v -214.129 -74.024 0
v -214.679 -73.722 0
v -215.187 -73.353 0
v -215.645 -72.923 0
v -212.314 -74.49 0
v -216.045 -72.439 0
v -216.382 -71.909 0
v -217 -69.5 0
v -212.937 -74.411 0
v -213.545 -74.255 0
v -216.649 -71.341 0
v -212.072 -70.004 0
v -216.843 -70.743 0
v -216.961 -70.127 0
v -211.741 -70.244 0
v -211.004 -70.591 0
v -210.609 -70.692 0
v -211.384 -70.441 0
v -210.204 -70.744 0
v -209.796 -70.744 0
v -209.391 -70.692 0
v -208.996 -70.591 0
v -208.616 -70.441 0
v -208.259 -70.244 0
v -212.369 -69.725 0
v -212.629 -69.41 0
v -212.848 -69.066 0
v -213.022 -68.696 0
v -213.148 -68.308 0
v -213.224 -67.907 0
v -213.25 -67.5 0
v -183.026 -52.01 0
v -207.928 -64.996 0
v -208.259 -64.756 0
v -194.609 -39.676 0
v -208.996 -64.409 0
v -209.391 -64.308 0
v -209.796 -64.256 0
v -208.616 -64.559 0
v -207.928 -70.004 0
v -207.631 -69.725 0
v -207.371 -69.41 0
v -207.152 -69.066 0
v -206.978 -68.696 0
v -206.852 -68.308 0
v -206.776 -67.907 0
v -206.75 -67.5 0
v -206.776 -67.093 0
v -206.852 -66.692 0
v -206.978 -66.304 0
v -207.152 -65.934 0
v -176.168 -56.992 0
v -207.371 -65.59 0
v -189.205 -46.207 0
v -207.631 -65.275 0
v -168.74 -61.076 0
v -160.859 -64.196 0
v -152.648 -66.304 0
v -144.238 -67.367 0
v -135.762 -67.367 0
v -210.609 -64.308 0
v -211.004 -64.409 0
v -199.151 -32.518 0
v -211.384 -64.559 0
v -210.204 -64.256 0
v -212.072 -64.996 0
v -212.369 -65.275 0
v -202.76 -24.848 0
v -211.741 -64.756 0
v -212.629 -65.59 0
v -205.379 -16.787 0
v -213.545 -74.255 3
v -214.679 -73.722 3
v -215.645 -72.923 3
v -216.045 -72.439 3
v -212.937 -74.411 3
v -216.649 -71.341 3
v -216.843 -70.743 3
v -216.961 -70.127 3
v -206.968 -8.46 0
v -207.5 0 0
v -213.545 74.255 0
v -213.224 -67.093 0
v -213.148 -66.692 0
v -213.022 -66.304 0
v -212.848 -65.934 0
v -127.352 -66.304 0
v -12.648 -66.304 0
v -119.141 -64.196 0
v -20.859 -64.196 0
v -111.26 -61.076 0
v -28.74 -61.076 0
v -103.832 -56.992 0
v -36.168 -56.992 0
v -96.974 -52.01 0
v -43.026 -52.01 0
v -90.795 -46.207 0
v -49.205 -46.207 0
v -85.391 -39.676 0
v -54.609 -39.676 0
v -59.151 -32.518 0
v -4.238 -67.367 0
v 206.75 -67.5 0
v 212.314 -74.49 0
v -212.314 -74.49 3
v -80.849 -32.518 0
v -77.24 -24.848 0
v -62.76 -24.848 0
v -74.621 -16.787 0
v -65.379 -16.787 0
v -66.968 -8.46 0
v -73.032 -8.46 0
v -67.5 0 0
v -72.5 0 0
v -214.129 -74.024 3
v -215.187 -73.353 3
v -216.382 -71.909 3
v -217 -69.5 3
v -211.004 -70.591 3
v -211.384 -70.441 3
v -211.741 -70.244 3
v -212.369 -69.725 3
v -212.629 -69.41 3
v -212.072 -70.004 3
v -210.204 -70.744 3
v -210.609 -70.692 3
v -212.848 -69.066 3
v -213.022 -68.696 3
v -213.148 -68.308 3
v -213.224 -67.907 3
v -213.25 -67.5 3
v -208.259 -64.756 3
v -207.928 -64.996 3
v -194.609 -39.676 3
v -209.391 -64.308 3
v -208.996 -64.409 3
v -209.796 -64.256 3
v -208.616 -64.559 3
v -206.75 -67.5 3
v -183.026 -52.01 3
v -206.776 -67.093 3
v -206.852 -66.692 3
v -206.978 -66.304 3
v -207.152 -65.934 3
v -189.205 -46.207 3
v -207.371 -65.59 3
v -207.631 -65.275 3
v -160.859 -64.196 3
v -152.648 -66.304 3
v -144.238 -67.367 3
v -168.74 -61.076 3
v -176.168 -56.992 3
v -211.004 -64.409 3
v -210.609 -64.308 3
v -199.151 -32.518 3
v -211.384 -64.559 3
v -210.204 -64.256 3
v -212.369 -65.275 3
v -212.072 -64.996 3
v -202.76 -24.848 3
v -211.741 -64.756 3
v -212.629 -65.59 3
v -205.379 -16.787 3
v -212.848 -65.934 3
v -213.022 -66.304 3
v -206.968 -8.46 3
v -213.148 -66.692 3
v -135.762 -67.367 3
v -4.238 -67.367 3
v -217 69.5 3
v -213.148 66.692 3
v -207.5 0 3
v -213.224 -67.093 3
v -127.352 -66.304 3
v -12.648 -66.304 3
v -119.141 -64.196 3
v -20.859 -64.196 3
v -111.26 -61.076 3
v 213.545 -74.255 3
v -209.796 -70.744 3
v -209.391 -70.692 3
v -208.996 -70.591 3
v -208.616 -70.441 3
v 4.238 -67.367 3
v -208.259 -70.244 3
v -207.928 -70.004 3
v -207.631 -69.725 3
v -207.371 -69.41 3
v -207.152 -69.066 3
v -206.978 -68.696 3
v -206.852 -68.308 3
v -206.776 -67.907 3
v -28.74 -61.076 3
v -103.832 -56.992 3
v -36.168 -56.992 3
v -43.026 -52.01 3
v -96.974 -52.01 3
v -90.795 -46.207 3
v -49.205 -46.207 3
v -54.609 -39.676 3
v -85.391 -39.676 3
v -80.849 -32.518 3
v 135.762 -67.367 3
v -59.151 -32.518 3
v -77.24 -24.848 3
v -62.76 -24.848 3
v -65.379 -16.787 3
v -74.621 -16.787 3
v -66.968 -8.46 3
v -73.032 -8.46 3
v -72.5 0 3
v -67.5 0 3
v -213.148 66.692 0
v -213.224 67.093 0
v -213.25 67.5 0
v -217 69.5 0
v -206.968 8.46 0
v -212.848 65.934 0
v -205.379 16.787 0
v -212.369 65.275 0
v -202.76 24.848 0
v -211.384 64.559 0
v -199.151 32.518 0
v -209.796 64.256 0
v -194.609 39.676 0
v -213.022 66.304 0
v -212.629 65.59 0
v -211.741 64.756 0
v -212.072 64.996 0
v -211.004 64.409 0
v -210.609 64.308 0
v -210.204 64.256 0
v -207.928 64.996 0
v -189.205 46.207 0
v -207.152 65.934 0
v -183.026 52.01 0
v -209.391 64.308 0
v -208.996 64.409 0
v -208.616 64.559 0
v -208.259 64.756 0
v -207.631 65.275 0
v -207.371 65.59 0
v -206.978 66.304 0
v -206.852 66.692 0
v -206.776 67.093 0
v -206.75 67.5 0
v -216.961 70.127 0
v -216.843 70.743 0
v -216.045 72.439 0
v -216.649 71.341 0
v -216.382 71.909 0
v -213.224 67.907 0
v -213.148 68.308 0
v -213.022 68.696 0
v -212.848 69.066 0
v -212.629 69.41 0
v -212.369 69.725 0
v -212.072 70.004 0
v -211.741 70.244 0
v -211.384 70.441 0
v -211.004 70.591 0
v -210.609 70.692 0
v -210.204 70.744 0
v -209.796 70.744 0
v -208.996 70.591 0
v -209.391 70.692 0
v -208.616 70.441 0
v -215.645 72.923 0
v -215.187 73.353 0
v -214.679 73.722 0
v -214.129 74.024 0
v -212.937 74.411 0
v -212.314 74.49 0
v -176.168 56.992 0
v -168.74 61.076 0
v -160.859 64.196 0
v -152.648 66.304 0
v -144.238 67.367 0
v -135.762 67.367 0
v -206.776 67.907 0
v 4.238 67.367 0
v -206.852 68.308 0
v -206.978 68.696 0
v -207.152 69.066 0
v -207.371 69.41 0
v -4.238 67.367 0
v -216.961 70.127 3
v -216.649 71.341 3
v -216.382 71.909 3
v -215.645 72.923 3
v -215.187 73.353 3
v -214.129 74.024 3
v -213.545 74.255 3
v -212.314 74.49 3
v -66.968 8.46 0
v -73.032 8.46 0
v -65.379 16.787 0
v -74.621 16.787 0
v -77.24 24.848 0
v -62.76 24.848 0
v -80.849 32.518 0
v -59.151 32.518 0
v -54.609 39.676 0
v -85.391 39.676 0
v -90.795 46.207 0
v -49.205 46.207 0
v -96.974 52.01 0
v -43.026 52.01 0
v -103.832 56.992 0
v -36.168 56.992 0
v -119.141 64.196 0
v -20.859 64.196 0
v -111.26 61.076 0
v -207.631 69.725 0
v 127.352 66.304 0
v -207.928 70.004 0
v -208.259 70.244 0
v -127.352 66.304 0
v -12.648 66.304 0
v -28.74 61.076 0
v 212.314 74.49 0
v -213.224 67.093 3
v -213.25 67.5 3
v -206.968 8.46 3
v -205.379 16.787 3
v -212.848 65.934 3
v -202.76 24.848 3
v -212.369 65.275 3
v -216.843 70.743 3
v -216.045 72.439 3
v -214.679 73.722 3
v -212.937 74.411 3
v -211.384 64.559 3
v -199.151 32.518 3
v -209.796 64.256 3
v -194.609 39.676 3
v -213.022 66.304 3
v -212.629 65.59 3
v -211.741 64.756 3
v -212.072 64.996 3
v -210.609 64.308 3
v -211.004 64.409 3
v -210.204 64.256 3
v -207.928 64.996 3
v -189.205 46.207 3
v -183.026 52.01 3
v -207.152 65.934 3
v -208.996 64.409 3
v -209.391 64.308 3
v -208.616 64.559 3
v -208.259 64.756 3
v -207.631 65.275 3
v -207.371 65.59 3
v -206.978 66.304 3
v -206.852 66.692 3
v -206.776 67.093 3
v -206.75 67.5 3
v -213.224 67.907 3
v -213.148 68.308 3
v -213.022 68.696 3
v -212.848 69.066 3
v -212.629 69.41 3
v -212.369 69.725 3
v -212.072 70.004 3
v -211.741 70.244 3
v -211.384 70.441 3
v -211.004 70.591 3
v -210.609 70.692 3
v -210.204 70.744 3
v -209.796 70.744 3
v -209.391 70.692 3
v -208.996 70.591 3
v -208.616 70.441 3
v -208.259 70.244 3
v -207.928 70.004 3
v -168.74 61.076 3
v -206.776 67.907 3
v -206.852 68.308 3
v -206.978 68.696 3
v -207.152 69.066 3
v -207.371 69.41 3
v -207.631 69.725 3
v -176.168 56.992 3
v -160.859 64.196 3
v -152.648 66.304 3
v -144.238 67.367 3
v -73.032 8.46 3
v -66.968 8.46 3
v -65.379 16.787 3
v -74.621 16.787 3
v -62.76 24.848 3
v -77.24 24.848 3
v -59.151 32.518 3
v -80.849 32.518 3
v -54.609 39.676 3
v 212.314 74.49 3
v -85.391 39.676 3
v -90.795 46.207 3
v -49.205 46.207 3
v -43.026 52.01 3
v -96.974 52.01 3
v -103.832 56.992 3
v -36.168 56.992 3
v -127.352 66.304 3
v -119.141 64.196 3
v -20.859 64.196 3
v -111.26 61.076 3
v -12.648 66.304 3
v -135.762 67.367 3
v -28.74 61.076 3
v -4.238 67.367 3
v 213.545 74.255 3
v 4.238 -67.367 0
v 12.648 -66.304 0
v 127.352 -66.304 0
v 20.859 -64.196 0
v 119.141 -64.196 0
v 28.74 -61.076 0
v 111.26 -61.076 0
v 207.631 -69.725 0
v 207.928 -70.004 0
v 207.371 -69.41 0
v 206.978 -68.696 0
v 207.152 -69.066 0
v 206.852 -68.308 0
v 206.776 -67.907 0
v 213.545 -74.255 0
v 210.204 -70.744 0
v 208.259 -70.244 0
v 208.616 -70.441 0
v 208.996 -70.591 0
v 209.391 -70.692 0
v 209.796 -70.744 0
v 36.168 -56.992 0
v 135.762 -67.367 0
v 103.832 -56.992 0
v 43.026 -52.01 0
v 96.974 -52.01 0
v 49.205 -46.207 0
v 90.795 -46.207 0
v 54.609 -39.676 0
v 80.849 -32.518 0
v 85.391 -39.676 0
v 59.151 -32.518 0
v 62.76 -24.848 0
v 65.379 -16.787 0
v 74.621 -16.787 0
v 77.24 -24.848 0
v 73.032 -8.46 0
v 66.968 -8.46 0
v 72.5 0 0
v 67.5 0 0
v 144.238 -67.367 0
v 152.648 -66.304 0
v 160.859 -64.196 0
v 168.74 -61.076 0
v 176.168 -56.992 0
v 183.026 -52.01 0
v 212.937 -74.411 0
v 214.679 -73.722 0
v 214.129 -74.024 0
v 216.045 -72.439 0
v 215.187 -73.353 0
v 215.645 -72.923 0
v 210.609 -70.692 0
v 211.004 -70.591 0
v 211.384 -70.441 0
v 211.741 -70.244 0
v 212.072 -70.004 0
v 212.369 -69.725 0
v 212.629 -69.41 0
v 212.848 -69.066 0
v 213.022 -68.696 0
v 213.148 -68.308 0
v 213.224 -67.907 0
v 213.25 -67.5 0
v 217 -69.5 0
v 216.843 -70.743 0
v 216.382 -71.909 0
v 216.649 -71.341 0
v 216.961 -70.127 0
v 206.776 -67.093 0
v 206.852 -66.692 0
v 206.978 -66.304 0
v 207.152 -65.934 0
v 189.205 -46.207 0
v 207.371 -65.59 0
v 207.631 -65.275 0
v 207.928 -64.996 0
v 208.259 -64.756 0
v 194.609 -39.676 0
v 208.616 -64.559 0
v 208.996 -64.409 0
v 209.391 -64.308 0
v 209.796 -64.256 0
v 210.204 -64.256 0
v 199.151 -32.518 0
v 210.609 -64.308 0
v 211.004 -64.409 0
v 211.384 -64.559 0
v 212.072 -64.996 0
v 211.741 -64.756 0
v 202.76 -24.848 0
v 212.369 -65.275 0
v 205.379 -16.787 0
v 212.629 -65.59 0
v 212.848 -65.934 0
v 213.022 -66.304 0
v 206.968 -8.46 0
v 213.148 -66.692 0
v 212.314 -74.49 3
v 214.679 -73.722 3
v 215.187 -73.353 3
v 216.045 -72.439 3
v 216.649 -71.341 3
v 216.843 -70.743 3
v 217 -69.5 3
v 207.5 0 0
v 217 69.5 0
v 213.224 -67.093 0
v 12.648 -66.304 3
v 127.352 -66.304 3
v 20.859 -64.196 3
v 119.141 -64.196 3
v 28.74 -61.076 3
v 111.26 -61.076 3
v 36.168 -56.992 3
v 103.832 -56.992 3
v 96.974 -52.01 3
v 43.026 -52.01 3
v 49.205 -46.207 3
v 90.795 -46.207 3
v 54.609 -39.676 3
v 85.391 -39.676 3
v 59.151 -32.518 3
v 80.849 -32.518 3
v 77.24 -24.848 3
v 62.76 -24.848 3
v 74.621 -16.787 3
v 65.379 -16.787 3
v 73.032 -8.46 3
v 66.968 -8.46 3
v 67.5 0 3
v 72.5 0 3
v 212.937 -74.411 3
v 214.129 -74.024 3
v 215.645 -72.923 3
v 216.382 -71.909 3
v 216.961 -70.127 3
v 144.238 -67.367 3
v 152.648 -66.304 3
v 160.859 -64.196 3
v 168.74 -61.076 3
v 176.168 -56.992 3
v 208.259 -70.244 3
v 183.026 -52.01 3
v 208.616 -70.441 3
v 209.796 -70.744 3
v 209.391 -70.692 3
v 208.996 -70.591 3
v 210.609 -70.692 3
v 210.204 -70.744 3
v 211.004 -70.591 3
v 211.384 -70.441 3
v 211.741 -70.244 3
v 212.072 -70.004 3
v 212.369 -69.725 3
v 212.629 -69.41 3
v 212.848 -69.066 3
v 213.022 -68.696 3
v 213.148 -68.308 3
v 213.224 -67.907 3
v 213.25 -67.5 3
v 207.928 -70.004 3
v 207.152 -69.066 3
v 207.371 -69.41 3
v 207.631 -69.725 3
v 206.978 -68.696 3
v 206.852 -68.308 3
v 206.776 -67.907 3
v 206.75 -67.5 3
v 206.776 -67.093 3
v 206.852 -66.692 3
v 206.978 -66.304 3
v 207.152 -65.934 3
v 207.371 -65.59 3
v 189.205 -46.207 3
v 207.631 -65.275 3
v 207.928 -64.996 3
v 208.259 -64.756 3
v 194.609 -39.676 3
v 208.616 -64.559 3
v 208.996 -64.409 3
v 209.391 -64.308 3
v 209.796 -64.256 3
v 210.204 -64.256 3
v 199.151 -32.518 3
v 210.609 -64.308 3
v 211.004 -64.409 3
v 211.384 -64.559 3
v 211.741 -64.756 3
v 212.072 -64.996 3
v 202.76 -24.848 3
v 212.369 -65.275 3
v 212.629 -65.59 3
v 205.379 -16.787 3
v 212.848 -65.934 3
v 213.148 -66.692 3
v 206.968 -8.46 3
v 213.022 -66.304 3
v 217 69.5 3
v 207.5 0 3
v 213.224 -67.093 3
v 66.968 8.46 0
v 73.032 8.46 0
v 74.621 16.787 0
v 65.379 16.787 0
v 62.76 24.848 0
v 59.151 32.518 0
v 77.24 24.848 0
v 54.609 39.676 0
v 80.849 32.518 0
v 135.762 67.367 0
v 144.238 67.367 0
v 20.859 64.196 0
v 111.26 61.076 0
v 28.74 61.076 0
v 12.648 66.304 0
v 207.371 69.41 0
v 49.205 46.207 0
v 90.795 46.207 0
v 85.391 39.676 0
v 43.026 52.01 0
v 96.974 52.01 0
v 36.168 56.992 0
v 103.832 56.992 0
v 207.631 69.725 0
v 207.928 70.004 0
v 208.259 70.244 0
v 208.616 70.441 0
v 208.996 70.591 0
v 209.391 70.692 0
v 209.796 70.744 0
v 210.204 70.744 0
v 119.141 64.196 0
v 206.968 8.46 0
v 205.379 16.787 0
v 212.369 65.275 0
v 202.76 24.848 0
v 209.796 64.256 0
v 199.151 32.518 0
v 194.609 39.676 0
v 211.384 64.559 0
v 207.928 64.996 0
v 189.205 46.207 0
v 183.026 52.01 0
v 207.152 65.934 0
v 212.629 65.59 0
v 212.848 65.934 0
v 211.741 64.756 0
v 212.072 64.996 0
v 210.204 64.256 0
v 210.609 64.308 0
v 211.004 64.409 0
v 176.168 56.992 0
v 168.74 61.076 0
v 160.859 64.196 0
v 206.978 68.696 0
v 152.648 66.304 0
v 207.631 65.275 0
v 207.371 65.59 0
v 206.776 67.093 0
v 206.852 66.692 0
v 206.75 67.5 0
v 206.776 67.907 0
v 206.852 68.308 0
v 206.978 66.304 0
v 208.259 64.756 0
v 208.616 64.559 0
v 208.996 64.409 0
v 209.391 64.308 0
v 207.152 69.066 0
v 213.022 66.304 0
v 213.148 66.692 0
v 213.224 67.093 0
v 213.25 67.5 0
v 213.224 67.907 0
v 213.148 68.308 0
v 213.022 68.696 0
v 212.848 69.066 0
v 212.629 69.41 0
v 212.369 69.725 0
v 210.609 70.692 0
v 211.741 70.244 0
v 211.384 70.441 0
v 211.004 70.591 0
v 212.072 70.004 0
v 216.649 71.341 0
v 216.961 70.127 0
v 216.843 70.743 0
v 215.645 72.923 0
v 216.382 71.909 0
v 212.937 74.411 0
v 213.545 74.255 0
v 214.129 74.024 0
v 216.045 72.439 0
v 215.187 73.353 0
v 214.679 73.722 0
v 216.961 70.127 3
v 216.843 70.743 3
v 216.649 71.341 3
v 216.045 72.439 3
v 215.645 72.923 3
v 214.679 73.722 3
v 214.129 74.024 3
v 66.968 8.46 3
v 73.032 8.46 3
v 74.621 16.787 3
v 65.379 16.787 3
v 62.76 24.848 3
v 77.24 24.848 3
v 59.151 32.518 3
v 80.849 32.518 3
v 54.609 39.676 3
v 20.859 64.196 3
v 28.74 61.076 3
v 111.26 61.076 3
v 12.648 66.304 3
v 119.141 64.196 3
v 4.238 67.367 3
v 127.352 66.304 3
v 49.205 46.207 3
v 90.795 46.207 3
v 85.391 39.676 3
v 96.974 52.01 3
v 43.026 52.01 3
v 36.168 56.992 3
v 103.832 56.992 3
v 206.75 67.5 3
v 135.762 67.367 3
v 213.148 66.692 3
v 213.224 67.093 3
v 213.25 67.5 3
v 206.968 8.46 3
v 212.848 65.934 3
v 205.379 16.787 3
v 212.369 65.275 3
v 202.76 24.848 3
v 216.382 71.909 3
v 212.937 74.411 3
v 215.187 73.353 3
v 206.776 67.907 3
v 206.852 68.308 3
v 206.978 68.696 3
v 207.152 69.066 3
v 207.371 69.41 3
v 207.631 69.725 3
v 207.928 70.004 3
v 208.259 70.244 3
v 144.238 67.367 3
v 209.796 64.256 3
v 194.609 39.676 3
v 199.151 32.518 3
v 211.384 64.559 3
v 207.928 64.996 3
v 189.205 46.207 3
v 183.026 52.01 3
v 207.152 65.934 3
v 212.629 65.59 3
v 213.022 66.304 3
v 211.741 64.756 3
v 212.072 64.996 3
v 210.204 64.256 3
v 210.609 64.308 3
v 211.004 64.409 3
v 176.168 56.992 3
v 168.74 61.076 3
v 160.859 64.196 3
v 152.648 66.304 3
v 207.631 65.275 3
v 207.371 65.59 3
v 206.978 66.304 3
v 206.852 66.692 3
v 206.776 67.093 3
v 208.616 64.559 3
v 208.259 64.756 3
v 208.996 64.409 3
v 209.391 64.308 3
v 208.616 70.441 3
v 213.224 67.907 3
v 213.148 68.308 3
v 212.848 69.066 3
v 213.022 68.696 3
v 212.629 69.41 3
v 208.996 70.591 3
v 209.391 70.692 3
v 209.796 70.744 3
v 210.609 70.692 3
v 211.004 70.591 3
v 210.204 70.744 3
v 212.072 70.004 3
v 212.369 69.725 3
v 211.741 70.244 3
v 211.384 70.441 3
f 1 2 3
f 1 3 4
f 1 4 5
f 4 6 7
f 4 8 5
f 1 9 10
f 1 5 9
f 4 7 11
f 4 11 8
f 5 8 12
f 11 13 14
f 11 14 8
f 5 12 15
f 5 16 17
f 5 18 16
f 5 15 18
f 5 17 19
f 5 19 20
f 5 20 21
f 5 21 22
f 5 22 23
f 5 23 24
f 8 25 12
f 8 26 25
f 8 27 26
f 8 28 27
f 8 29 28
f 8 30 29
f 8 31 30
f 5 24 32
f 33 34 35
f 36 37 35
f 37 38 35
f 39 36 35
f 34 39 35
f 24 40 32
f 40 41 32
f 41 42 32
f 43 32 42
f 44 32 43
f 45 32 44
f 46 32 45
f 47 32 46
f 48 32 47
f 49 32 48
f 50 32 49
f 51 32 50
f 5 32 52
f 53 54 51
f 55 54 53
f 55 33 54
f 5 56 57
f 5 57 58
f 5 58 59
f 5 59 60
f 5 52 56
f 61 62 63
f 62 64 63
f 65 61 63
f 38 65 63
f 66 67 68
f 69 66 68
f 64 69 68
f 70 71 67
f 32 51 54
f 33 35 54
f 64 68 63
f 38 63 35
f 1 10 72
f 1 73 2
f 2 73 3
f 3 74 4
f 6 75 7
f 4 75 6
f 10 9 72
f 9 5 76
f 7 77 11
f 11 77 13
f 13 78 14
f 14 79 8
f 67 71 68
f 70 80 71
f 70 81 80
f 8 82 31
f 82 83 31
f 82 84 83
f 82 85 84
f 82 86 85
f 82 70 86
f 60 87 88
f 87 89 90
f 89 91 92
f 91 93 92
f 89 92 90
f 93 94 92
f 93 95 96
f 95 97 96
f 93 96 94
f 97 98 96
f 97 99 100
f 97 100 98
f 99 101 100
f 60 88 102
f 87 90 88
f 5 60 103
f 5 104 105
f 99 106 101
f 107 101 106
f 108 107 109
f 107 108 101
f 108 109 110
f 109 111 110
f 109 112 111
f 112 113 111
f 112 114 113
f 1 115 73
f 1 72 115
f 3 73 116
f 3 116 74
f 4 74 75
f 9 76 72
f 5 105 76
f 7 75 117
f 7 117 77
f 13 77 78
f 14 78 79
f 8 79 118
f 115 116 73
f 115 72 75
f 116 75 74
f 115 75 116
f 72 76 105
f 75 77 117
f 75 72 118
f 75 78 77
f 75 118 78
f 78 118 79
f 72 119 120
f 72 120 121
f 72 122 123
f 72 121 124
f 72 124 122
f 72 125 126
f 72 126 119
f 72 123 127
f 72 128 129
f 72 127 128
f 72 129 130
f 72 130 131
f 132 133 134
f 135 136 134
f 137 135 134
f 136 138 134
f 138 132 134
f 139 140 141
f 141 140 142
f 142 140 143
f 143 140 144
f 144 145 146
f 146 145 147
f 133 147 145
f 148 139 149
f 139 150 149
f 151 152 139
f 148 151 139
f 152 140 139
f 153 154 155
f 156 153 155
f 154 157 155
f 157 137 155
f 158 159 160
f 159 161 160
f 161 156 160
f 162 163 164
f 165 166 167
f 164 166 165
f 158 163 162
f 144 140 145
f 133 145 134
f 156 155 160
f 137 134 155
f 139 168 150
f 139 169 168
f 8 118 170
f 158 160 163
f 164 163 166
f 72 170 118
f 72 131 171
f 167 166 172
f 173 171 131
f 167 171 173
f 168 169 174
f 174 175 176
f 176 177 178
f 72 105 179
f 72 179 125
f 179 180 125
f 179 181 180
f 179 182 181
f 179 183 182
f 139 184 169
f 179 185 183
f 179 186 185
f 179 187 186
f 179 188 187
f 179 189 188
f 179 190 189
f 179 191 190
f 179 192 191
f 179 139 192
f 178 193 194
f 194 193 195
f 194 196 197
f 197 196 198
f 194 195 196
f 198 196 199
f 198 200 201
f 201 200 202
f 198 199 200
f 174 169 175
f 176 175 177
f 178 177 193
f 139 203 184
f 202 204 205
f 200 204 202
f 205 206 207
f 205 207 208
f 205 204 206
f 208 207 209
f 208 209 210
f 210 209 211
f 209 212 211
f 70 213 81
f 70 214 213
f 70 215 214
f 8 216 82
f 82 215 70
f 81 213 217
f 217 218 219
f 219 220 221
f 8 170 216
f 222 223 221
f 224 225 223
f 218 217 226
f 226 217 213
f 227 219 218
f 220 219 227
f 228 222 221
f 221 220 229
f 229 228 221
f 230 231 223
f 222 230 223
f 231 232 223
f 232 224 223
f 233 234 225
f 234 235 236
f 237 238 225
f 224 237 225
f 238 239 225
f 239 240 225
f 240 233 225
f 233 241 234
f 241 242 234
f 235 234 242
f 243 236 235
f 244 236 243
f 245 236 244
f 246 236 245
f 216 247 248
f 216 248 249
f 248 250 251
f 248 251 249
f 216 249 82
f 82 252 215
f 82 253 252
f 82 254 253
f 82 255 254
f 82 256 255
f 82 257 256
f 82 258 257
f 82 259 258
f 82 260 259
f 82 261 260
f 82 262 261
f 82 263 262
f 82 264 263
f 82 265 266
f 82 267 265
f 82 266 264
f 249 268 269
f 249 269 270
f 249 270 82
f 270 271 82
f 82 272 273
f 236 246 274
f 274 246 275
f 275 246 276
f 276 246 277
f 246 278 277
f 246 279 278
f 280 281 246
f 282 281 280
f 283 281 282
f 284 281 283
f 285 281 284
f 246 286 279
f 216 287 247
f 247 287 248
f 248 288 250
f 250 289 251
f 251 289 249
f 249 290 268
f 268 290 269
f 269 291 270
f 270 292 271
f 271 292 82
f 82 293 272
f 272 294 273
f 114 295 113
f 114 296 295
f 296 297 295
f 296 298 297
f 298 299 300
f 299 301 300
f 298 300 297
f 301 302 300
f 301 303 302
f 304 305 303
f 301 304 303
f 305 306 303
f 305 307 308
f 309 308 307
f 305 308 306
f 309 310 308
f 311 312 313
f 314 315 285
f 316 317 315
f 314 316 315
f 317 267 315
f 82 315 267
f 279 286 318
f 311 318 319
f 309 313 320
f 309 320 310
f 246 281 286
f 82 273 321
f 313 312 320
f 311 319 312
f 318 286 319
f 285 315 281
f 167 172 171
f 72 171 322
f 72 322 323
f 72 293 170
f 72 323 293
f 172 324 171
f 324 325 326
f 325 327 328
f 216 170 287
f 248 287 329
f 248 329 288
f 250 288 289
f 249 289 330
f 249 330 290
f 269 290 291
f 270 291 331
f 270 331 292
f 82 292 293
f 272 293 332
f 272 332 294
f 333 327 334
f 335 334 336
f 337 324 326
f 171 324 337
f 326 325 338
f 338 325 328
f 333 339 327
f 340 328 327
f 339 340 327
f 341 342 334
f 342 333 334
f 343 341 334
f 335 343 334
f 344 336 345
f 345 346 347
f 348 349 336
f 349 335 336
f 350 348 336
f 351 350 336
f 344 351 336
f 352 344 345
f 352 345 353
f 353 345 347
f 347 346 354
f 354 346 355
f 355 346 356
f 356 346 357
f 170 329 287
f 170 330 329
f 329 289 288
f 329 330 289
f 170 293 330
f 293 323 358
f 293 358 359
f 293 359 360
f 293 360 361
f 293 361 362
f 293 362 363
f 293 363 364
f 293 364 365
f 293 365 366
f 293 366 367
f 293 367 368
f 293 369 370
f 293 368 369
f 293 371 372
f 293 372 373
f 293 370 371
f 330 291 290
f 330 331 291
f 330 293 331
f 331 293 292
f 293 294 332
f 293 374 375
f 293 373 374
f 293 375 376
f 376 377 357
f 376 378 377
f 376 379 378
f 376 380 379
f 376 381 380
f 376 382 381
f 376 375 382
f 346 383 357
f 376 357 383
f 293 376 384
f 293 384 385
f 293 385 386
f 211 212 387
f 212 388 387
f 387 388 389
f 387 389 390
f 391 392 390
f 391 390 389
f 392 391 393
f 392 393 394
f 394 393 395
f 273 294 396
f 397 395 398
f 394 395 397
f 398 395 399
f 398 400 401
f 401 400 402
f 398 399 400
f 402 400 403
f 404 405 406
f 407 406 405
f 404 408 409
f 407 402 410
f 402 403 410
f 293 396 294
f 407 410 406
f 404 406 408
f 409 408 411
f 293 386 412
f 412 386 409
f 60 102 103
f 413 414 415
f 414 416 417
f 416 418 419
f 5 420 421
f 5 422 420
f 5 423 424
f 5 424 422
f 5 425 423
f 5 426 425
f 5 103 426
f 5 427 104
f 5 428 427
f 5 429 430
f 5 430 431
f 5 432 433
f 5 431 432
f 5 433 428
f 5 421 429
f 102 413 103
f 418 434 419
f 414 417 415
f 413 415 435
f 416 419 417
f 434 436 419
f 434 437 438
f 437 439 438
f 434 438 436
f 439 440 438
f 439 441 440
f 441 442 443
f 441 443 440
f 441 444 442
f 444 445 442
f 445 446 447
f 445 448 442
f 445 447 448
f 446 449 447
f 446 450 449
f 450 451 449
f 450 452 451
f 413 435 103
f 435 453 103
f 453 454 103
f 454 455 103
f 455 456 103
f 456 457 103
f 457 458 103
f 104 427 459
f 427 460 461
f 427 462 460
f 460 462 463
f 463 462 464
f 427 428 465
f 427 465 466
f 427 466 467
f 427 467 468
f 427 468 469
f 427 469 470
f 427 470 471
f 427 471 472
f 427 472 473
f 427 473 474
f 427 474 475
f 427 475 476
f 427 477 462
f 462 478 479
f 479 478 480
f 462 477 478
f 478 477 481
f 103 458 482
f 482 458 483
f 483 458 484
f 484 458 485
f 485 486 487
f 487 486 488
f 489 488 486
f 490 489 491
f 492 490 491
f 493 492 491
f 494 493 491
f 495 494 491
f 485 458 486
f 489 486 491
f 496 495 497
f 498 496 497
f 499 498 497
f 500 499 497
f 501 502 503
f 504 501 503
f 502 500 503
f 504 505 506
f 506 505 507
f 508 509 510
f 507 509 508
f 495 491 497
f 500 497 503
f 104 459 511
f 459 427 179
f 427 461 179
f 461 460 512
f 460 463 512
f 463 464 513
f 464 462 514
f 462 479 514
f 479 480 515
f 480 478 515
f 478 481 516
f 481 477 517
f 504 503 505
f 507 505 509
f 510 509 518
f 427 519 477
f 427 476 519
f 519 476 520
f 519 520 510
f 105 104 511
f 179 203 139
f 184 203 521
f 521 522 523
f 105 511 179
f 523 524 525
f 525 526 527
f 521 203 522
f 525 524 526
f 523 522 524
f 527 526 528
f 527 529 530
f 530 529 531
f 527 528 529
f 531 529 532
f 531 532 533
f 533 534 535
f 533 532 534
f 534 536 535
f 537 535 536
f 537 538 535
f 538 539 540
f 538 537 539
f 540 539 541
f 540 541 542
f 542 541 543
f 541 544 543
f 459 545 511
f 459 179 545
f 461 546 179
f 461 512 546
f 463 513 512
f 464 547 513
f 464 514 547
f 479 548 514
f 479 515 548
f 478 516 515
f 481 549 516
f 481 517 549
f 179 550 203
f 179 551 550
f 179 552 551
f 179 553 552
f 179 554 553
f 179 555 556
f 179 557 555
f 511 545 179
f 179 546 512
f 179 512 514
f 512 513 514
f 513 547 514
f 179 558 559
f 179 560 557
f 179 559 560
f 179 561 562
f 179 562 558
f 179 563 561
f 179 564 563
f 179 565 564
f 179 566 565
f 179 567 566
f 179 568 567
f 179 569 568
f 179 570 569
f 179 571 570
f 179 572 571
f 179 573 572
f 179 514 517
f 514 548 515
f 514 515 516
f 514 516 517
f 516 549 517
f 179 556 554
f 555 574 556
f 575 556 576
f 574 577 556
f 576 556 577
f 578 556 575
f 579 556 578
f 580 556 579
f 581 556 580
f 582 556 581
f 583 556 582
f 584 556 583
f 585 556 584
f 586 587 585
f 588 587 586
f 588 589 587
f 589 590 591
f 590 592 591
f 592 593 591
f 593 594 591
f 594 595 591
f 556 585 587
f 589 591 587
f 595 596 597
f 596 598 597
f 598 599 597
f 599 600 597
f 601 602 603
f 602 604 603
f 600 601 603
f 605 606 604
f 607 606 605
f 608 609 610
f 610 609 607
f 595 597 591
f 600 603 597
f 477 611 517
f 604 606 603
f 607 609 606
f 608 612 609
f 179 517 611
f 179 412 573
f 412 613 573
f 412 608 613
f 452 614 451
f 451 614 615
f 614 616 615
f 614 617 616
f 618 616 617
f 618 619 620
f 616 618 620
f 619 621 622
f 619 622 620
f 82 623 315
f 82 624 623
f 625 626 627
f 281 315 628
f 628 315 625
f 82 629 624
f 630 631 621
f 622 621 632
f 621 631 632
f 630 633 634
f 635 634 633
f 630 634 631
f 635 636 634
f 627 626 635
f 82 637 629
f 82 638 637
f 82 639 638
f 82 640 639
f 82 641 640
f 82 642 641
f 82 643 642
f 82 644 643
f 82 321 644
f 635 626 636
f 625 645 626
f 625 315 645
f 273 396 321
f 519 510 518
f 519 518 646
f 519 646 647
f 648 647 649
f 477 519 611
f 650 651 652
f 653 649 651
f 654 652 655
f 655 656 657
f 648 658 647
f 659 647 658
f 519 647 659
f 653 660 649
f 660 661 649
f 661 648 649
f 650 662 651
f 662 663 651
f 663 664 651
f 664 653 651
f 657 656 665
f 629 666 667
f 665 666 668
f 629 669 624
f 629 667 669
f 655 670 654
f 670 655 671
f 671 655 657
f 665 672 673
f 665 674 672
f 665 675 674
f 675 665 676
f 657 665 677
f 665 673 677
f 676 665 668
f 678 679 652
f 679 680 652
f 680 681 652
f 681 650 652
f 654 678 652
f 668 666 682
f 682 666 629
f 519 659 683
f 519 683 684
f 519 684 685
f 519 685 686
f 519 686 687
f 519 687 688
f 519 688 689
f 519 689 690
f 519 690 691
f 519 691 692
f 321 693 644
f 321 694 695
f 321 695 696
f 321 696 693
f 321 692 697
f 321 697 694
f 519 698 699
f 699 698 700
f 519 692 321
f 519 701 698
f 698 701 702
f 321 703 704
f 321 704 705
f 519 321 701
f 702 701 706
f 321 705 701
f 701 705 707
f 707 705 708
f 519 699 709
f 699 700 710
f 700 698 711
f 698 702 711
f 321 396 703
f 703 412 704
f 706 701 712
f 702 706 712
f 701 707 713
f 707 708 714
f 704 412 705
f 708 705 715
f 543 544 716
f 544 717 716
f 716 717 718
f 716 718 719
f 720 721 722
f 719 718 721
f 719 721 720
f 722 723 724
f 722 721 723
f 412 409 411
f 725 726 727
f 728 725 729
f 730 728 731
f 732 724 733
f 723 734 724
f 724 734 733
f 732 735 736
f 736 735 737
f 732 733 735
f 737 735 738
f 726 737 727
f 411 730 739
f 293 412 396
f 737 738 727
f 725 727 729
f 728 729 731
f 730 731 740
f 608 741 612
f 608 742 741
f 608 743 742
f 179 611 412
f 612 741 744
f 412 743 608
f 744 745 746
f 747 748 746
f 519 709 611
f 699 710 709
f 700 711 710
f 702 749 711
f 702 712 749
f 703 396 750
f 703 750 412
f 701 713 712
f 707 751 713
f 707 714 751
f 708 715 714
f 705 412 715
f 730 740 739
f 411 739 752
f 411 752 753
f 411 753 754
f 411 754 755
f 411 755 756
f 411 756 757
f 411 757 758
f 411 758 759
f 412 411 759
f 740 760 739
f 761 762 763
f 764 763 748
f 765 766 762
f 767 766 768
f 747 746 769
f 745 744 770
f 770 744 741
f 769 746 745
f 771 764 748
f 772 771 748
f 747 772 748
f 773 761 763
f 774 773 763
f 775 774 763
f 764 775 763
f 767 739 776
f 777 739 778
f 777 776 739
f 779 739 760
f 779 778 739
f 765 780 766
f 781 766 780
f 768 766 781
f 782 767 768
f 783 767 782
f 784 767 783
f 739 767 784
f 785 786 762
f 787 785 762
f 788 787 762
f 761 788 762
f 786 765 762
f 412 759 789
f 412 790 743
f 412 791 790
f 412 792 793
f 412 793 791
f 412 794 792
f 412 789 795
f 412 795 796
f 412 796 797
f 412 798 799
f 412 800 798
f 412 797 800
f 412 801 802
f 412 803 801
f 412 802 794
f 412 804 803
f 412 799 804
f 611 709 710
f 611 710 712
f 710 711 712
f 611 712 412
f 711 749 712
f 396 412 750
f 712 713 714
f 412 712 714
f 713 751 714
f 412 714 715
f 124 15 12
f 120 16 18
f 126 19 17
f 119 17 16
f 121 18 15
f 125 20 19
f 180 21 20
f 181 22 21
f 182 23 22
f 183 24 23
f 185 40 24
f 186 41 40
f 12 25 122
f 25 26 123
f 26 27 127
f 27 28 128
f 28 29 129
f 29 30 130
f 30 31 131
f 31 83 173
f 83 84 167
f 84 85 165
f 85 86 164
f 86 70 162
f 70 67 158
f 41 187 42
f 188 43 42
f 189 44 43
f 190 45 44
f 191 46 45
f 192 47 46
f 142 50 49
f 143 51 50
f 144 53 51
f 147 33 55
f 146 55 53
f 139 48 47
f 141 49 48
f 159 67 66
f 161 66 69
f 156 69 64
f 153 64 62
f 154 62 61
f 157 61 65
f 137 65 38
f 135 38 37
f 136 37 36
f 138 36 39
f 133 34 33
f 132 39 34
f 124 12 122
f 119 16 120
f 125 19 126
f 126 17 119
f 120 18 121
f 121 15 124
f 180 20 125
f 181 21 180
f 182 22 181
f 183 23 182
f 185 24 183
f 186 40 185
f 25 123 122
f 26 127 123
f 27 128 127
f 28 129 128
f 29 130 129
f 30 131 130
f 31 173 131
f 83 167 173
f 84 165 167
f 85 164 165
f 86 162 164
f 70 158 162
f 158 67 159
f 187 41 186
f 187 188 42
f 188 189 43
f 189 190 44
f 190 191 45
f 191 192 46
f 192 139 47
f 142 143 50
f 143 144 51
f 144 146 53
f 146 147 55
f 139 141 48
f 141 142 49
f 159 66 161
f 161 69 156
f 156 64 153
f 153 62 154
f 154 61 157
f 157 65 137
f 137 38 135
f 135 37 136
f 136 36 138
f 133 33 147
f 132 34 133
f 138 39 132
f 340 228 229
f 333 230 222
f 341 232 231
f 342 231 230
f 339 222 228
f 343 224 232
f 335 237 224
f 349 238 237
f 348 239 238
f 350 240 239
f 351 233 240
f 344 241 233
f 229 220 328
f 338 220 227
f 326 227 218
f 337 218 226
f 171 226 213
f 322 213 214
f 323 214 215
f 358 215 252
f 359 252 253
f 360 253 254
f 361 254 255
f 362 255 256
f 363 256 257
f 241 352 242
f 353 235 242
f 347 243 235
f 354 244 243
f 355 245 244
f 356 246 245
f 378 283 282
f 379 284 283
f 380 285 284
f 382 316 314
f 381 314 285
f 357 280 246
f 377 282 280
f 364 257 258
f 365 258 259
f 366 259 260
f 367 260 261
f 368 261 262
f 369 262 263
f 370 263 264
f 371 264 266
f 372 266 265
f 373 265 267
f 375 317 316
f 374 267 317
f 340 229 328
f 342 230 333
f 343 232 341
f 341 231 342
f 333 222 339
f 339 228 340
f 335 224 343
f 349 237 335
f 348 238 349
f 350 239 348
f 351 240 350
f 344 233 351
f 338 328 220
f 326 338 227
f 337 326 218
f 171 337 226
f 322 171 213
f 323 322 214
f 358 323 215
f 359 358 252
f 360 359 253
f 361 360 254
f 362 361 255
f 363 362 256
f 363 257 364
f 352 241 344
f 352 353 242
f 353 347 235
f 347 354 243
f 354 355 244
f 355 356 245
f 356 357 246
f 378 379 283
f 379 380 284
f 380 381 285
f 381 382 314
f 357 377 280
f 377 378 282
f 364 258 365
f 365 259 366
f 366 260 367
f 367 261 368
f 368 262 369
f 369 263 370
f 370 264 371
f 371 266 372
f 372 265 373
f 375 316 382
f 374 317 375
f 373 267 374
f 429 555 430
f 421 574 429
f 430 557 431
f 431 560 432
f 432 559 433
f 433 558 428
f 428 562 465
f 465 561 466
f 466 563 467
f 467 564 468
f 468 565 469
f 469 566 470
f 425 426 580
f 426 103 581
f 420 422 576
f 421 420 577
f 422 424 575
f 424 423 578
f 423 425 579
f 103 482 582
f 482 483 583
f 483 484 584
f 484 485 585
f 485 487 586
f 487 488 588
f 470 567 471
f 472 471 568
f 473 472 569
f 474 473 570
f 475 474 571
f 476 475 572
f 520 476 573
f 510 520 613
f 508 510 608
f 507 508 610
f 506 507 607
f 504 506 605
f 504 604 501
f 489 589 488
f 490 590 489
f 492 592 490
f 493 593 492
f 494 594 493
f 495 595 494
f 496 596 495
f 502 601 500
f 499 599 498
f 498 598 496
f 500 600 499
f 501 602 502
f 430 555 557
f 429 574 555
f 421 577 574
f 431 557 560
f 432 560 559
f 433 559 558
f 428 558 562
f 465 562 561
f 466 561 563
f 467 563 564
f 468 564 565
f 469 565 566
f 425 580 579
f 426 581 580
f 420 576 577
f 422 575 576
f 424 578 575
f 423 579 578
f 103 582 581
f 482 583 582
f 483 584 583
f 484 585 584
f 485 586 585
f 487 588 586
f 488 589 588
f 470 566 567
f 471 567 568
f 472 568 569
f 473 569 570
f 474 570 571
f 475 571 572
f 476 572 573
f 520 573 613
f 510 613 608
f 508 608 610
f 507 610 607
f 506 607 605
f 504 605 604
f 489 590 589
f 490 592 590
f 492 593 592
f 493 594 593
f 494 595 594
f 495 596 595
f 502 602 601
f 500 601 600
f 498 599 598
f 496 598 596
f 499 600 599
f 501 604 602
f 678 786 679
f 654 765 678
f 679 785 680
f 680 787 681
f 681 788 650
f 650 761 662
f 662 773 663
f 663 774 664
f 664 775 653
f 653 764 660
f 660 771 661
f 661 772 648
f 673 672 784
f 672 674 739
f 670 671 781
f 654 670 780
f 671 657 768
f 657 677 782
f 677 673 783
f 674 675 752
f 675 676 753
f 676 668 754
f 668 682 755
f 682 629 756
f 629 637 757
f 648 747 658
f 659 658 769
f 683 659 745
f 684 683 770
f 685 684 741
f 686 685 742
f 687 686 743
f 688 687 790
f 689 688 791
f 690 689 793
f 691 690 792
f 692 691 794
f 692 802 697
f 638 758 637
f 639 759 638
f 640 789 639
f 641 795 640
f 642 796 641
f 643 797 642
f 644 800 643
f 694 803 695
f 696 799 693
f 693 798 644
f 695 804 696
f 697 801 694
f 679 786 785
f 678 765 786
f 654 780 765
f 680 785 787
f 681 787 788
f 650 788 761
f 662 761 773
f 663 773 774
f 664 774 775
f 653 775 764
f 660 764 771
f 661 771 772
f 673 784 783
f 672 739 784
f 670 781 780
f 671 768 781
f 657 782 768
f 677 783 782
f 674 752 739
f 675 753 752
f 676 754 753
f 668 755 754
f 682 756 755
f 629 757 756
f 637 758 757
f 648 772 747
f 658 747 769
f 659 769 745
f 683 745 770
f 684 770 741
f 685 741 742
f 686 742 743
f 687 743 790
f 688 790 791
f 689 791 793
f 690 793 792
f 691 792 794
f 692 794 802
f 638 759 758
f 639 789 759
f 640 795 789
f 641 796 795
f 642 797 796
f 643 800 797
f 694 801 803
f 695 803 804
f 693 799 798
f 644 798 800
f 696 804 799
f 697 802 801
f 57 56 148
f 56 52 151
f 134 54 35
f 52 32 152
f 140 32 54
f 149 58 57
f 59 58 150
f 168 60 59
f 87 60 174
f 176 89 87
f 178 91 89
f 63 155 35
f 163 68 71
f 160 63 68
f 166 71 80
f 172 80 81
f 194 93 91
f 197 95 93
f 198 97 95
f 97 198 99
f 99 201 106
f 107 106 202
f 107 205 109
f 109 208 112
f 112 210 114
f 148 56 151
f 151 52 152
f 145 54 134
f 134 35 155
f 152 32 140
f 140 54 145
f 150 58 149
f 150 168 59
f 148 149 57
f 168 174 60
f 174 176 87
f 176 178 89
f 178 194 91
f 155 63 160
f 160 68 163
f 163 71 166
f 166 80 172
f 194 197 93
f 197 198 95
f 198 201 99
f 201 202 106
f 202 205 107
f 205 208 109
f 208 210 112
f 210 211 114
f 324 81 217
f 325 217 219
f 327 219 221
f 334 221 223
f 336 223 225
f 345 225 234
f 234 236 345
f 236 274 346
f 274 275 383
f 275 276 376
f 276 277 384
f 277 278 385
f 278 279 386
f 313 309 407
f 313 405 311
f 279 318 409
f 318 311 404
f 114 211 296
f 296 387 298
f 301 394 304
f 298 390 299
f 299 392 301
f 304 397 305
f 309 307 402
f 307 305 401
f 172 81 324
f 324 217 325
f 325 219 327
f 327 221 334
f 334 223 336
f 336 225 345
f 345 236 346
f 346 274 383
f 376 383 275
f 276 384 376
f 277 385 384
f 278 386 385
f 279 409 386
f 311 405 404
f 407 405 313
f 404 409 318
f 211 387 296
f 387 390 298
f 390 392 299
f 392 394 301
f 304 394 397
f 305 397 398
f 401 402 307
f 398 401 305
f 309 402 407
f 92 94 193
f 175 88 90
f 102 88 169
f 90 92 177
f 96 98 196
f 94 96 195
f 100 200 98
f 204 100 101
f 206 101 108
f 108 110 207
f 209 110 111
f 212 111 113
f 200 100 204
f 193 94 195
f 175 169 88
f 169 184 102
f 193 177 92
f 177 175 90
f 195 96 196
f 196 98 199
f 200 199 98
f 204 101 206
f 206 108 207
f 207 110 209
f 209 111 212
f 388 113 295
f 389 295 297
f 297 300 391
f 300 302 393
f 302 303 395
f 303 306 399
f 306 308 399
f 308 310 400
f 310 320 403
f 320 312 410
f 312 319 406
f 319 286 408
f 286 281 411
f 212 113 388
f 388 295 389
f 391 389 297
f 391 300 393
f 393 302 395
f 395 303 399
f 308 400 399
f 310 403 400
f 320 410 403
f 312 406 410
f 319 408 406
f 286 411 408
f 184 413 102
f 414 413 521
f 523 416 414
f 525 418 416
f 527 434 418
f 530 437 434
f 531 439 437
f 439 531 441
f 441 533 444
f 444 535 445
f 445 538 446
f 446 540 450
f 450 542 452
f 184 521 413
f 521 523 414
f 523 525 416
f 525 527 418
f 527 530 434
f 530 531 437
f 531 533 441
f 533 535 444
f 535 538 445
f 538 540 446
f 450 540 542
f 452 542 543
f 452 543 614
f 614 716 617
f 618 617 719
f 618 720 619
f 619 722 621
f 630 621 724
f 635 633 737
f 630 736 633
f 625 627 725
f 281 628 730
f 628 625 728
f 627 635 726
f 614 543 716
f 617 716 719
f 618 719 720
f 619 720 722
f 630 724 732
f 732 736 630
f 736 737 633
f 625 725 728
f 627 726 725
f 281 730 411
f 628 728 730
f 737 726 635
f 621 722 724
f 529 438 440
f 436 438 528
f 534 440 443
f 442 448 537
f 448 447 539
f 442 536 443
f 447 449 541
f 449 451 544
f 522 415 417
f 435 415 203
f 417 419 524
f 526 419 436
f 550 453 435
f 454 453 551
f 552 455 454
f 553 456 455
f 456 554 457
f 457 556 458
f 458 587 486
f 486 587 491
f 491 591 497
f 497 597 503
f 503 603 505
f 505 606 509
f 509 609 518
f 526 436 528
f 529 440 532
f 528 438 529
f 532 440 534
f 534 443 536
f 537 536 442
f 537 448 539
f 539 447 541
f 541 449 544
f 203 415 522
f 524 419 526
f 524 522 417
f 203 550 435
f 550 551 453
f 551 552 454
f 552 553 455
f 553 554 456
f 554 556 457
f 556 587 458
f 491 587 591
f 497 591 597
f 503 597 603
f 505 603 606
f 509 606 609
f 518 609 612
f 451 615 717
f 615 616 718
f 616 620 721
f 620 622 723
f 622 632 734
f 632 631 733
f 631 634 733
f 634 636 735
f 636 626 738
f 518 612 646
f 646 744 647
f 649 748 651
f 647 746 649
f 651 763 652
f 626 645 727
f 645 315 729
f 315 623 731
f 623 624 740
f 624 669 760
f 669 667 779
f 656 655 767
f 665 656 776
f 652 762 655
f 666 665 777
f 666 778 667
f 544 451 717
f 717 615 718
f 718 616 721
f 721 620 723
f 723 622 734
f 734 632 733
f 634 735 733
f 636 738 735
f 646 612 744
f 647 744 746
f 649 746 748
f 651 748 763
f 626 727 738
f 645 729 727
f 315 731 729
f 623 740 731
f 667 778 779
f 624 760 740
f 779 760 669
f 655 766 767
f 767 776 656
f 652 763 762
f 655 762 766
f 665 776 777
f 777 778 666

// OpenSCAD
$fn = 50;

difference() {
	union() {
		hull() {
			translate(v = [-212.0, 69.5, 0]) {
				cylinder(h = 3, r = 5);
			}
			translate(v = [212.0, 69.5, 0]) {
				cylinder(h = 3, r = 5);
			}
			translate(v = [-212.0, -69.5, 0]) {
				cylinder(h = 3, r = 5);
			}
			translate(v = [212.0, -69.5, 0]) {
				cylinder(h = 3, r = 5);
			}
		}
	}
	union() {
		translate(v = [-210.0, -67.5, -100.0]) {
			cylinder(h = 200, r = 3.25);
		}
		translate(v = [-210.0, 67.5, -100.0]) {
			cylinder(h = 200, r = 3.25);
		}
		translate(v = [210.0, -67.5, -100.0]) {
			cylinder(h = 200, r = 3.25);
		}
		translate(v = [210.0, 67.5, -100.0]) {
			cylinder(h = 200, r = 3.25);
		}
		translate(v = [-210.0, -67.5, -100.0]) {
			cylinder(h = 200, r = 1.8);
		}
		translate(v = [-210.0, 67.5, -100.0]) {
			cylinder(h = 200, r = 1.8);
		}
		translate(v = [210.0, -67.5, -100.0]) {
			cylinder(h = 200, r = 1.8);
		}
		translate(v = [210.0, 67.5, -100.0]) {
			cylinder(h = 200, r = 1.8);
		}
		translate(v = [-140.0, 0, 0.0]) {
			cylinder(h = 3, r = 67.5);
		}
		cylinder(h = 3, r = 67.5);
		translate(v = [140.0, 0, 0.0]) {
			cylinder(h = 3, r = 67.5);
		}
	}
}
